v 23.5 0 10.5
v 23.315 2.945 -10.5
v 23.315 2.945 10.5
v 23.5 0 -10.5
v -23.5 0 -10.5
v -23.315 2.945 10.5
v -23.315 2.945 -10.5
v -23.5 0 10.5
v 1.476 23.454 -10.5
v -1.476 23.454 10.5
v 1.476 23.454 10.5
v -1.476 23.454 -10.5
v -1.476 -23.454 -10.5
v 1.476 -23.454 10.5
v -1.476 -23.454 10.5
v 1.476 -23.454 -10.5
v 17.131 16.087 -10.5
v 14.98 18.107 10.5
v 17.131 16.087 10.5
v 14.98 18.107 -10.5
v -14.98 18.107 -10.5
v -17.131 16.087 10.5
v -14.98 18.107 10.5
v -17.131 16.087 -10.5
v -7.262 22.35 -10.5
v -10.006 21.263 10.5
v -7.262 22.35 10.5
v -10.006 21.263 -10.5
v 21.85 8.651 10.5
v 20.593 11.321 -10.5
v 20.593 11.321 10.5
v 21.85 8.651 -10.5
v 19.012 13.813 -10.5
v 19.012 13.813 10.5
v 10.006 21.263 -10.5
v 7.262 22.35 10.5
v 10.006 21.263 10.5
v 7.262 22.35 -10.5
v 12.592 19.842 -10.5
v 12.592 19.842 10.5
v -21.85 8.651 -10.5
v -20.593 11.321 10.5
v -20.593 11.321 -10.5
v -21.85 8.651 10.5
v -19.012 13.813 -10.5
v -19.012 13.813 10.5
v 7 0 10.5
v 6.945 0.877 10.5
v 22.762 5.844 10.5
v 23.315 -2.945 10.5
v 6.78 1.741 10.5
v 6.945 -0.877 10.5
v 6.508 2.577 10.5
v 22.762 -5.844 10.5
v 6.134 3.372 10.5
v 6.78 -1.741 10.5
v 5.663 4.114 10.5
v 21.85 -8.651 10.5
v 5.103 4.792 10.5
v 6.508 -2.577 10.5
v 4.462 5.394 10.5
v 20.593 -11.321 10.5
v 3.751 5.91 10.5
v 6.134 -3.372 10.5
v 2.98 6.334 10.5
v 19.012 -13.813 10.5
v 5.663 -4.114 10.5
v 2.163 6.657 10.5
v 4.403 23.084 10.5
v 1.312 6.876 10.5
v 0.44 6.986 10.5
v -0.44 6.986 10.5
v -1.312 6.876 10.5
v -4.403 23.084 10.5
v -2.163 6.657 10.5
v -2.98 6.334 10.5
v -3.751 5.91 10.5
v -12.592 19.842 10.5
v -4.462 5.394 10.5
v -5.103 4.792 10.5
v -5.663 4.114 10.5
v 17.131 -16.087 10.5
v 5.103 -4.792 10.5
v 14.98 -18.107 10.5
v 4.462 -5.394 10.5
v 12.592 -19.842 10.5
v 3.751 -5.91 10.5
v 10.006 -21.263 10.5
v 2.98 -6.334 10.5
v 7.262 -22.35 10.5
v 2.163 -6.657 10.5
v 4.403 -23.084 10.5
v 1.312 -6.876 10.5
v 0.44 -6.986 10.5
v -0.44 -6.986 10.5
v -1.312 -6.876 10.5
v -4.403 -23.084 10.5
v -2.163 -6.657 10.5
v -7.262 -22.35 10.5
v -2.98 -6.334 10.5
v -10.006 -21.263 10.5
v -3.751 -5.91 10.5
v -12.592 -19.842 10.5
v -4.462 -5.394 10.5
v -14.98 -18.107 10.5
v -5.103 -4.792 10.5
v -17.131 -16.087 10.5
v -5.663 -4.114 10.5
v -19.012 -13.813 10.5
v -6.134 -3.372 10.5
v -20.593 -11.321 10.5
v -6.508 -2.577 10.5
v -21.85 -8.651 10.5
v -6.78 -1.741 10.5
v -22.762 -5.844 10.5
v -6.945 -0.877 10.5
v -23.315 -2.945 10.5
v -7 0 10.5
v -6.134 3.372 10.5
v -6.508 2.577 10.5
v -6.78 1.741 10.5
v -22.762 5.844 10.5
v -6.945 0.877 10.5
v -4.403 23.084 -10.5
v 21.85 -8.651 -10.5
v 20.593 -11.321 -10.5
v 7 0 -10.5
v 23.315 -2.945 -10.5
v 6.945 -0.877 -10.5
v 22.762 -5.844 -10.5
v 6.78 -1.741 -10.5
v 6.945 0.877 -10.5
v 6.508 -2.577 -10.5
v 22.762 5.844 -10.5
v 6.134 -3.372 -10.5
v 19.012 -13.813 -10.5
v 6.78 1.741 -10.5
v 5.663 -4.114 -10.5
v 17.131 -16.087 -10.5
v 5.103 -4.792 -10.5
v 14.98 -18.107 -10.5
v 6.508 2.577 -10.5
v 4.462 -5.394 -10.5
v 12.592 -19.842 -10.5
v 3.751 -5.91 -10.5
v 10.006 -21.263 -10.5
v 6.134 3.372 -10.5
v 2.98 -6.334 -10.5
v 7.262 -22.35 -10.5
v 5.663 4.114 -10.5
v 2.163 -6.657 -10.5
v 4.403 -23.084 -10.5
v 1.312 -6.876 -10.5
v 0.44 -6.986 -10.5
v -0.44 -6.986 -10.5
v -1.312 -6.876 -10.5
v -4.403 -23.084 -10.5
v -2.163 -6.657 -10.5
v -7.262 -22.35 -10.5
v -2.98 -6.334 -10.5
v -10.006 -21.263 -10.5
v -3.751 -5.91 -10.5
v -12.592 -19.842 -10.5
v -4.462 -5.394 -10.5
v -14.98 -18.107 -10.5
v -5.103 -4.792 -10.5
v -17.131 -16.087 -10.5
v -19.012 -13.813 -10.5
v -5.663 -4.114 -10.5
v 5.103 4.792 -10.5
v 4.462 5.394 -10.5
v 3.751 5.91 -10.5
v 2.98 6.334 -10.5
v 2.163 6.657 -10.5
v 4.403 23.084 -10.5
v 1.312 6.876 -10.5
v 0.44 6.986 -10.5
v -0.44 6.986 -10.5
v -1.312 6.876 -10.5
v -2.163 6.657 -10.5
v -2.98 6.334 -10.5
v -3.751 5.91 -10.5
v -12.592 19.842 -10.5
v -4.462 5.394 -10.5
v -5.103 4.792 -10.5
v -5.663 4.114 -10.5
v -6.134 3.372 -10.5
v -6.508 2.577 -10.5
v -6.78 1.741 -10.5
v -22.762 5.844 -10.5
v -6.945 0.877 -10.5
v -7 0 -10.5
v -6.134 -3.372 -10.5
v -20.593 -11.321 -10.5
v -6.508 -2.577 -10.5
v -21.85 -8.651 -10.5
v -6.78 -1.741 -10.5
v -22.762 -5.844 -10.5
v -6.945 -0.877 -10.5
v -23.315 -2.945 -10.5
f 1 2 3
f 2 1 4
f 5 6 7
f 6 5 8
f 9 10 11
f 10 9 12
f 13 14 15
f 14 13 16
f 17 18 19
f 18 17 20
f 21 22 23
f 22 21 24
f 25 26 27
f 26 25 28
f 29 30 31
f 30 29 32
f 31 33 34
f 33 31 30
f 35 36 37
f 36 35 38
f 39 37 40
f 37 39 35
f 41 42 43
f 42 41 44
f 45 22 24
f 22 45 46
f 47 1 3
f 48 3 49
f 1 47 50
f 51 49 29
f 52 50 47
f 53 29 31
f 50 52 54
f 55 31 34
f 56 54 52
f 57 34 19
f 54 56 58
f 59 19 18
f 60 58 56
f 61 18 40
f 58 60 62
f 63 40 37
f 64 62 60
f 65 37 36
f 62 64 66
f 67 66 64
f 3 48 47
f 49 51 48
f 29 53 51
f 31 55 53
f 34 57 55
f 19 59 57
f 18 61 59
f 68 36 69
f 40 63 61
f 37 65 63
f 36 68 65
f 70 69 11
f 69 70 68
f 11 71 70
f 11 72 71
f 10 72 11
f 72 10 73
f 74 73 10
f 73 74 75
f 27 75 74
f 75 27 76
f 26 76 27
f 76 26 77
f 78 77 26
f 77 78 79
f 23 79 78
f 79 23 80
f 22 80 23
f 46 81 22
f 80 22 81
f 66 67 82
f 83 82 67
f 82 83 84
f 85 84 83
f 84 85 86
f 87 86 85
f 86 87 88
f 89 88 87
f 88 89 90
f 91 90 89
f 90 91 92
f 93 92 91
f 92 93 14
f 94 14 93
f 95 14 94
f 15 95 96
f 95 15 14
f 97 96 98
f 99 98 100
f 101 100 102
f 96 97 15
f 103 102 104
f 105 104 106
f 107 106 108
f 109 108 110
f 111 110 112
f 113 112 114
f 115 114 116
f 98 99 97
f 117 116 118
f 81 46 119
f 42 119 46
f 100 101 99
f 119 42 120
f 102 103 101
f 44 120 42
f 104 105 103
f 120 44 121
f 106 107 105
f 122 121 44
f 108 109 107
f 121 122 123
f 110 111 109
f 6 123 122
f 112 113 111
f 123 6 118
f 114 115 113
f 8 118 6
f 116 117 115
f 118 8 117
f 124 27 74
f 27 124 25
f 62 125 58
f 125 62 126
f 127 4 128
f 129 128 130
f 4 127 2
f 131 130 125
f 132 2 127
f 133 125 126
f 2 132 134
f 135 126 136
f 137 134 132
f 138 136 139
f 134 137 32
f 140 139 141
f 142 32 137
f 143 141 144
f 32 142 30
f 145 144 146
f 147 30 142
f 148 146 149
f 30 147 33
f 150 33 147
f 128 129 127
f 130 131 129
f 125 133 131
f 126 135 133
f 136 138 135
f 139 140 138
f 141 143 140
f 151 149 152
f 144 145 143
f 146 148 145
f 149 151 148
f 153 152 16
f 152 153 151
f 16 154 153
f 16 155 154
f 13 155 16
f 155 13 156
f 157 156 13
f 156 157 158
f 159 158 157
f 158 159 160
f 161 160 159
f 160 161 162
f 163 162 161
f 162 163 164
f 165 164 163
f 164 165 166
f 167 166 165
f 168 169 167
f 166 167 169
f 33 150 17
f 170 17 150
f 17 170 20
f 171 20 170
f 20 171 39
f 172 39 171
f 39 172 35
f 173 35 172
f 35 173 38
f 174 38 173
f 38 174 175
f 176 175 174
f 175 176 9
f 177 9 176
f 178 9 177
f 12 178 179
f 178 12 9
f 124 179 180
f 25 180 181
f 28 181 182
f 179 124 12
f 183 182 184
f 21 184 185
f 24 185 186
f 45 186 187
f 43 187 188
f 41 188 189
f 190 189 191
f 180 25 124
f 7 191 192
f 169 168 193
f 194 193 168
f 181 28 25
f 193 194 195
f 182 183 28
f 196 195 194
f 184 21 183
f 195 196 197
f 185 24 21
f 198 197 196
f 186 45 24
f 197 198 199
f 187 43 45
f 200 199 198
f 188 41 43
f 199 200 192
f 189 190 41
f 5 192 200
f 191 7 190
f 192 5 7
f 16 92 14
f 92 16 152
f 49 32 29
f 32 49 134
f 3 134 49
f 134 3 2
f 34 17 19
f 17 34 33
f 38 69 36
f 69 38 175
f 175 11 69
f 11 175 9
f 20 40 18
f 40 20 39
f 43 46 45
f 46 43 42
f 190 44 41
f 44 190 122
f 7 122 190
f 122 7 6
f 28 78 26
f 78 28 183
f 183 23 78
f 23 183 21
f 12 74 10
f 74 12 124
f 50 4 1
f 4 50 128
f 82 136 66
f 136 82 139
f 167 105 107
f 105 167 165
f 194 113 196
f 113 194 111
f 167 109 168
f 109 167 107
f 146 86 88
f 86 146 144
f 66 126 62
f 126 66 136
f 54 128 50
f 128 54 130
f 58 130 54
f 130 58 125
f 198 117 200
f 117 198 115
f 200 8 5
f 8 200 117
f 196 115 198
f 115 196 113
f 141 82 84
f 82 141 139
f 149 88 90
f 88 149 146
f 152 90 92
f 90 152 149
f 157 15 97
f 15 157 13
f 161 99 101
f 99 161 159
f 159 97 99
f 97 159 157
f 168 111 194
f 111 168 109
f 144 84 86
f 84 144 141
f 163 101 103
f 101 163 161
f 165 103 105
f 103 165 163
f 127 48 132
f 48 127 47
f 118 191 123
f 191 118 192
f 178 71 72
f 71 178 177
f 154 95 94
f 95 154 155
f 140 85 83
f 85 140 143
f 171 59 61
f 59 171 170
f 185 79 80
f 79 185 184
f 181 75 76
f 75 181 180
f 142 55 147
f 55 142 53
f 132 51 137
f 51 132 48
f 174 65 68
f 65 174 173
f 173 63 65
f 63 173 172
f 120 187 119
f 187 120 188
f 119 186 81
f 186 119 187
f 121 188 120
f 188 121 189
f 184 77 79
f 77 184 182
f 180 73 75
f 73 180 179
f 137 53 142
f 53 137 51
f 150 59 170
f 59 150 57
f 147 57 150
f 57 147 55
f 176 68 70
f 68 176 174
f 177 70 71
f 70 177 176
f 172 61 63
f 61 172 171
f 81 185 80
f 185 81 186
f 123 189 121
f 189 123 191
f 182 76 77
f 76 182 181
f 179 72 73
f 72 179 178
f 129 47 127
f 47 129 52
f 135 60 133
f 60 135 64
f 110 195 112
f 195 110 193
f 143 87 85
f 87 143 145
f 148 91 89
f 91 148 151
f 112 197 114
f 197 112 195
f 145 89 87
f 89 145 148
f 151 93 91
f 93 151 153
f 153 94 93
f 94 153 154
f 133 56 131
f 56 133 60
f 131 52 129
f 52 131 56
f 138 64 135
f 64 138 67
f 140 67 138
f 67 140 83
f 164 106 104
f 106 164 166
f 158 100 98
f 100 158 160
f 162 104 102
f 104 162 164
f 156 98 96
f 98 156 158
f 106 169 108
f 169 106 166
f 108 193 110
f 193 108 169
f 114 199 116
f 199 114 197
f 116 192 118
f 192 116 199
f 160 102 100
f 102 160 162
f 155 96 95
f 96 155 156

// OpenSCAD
$fn = 50;


difference() {
	union() {
		translate(v = [0, 0, -10.5000000000]) {
			cylinder(h = 21, r = 23.5000000000);
		}
	}
	union() {
		translate(v = [0, 0, -100.0000000000]) {
			cylinder(h = 200, r = 7);
		}
	}
}
